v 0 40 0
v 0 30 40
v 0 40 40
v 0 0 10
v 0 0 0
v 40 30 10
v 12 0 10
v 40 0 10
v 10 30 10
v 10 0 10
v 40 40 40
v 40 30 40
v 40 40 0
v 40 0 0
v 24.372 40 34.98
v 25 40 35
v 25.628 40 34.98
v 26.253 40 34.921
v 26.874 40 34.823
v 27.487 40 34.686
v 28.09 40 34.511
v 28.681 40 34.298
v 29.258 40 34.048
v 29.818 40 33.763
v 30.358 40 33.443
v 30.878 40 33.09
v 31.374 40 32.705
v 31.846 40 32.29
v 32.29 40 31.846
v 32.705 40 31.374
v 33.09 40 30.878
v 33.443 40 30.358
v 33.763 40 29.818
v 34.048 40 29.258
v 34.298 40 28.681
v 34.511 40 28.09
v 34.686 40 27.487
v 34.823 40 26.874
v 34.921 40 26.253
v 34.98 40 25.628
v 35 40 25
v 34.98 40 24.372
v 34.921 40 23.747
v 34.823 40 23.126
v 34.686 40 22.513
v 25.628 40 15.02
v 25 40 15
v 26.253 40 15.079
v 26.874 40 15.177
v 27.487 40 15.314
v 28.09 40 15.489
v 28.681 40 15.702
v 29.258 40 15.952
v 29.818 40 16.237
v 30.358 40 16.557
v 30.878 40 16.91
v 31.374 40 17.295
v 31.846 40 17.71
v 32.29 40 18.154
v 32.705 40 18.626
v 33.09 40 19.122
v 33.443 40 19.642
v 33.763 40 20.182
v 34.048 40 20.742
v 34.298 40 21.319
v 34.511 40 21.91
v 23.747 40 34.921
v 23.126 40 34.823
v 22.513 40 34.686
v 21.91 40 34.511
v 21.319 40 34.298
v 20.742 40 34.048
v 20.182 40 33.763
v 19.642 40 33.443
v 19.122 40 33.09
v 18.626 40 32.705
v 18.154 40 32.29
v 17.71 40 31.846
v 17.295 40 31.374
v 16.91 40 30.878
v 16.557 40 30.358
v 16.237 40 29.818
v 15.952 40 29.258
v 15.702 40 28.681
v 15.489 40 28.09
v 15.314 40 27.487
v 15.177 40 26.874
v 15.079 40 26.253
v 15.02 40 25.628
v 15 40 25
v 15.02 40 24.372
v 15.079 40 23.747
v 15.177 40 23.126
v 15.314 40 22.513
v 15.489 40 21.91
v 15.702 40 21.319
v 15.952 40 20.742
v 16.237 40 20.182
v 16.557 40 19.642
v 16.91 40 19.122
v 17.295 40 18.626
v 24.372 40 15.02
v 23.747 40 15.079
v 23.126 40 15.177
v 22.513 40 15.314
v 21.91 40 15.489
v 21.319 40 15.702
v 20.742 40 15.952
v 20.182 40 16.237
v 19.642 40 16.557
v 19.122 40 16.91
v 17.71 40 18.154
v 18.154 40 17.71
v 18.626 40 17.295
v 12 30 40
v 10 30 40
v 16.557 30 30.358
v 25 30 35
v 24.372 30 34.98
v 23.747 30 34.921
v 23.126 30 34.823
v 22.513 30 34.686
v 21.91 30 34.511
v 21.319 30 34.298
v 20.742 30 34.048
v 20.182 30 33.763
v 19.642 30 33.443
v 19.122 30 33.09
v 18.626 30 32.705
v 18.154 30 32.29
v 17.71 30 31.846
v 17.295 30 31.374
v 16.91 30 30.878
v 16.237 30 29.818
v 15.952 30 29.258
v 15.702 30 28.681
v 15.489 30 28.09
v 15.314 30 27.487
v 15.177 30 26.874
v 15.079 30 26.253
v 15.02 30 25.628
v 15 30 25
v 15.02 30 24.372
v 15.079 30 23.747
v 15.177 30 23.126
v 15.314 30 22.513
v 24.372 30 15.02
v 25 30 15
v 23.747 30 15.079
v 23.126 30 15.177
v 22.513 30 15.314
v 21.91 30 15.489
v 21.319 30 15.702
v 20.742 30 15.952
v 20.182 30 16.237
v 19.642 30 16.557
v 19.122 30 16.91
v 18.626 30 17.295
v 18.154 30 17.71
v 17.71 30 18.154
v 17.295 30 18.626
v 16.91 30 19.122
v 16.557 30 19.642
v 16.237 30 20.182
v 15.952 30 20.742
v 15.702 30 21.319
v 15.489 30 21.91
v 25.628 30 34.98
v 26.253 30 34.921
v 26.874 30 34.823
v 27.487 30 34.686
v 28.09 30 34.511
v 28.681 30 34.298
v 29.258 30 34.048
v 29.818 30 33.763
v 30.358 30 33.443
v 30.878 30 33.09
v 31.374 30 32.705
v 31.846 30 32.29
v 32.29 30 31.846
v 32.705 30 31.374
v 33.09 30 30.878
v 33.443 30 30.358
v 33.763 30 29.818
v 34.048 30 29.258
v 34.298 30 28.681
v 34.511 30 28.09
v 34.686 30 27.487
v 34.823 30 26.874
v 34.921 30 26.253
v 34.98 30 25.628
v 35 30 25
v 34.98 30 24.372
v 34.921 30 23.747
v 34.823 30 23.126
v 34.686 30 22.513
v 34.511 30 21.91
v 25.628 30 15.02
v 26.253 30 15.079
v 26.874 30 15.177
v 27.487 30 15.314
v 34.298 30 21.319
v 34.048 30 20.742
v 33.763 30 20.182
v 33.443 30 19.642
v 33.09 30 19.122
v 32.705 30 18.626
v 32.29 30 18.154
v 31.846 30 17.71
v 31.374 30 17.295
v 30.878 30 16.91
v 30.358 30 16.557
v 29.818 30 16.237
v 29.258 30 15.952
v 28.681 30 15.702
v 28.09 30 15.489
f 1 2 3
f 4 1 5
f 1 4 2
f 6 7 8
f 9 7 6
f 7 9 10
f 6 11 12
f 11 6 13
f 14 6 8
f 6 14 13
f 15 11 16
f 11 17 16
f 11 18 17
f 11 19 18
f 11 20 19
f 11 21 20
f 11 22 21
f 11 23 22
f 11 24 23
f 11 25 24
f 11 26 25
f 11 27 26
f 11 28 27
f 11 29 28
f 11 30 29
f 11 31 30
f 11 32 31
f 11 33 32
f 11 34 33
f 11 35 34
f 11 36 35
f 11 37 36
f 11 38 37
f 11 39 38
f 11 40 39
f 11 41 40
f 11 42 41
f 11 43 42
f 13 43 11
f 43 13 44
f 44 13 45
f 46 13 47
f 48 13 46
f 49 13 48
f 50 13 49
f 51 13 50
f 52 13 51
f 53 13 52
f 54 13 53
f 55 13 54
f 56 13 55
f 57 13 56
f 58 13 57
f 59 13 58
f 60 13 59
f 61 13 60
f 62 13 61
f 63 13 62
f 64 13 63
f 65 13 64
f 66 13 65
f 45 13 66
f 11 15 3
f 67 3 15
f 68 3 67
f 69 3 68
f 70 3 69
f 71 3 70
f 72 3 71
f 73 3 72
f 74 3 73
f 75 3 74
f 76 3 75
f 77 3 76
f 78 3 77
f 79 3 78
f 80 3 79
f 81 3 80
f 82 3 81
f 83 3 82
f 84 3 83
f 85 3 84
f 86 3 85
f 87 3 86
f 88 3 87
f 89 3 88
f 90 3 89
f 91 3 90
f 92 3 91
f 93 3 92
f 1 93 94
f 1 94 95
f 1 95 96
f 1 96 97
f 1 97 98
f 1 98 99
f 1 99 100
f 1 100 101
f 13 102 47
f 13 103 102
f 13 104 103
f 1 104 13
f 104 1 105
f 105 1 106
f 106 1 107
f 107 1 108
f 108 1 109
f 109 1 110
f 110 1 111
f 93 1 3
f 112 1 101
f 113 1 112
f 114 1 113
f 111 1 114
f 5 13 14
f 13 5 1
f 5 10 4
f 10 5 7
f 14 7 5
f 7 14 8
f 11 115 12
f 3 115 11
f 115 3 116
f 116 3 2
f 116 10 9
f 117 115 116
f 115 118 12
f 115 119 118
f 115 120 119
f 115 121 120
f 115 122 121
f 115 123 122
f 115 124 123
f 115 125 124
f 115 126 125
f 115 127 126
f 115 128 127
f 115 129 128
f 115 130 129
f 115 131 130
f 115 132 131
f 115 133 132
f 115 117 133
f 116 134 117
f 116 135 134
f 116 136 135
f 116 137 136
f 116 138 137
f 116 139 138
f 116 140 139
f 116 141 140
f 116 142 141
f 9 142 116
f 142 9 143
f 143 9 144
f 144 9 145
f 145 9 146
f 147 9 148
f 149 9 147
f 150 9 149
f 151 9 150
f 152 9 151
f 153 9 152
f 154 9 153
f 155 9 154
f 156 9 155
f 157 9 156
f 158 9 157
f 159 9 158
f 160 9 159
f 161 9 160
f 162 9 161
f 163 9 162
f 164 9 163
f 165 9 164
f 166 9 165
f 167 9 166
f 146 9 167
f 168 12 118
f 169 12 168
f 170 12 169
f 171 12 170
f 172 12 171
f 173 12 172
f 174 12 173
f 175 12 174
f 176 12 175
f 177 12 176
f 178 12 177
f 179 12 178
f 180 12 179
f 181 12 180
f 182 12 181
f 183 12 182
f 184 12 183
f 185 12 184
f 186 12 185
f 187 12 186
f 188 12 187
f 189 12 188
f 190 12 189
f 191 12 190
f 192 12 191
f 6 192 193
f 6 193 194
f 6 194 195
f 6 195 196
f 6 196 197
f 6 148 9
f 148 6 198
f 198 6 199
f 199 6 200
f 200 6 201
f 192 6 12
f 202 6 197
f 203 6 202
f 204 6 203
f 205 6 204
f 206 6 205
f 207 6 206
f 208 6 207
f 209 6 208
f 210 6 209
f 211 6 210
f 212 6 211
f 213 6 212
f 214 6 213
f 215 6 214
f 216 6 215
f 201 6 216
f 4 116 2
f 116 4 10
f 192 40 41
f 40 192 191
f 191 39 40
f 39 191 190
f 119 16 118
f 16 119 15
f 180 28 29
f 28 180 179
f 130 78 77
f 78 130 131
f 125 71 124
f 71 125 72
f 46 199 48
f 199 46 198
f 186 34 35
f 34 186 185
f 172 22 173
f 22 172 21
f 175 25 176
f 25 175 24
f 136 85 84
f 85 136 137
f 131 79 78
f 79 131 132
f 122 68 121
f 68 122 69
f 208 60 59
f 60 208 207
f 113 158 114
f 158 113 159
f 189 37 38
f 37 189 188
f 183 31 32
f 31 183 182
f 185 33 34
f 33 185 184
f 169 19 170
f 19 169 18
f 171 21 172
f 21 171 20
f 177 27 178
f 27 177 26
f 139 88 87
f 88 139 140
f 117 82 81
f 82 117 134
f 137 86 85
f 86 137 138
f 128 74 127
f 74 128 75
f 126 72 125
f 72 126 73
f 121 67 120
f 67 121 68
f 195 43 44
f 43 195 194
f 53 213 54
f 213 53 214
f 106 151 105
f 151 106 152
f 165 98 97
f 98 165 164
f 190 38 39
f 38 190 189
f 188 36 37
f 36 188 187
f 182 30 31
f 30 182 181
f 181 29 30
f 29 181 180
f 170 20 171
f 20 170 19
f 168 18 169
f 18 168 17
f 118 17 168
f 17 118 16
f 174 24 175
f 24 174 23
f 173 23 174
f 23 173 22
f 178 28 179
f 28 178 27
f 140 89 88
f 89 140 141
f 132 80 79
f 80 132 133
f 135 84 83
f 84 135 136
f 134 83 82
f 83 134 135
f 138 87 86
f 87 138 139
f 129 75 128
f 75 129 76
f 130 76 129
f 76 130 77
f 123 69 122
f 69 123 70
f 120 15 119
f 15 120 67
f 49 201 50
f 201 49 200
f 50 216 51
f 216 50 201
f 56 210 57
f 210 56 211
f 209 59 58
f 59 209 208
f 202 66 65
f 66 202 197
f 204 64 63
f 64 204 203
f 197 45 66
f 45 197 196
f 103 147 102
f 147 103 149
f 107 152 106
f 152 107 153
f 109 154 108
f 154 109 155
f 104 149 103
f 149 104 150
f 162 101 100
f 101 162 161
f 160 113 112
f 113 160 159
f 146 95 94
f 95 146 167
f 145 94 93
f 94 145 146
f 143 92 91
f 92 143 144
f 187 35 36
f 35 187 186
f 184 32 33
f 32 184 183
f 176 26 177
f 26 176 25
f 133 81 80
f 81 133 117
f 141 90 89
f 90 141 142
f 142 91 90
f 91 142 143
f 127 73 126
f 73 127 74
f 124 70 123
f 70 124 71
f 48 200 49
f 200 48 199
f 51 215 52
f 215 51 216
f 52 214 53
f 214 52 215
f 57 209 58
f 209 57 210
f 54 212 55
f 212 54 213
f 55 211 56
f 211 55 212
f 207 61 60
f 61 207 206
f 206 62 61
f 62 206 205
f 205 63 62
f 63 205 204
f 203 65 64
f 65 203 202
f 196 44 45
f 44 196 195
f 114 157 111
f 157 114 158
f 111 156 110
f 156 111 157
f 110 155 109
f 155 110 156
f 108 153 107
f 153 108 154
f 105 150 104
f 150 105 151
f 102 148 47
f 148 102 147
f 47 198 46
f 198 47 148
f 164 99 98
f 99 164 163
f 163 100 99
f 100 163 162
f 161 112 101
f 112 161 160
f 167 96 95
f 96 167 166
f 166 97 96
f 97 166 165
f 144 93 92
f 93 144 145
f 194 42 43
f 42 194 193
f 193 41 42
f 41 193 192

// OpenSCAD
difference(){
union(){
// base
cube([40,40,10]);
// panel lateral
cube([10,40,40]);
// panel fondo
translate([0,30,10])
cube([40,10,30]);
}
union(){
//plano inclinado
translate([0,0,10])
rotate([45,0,0])
cube([12,43,30]);
// taladro
translate([25,50,25])
rotate([90,0,0])
cylinder(r=20/2, h=100, $fn=100);
}
}
